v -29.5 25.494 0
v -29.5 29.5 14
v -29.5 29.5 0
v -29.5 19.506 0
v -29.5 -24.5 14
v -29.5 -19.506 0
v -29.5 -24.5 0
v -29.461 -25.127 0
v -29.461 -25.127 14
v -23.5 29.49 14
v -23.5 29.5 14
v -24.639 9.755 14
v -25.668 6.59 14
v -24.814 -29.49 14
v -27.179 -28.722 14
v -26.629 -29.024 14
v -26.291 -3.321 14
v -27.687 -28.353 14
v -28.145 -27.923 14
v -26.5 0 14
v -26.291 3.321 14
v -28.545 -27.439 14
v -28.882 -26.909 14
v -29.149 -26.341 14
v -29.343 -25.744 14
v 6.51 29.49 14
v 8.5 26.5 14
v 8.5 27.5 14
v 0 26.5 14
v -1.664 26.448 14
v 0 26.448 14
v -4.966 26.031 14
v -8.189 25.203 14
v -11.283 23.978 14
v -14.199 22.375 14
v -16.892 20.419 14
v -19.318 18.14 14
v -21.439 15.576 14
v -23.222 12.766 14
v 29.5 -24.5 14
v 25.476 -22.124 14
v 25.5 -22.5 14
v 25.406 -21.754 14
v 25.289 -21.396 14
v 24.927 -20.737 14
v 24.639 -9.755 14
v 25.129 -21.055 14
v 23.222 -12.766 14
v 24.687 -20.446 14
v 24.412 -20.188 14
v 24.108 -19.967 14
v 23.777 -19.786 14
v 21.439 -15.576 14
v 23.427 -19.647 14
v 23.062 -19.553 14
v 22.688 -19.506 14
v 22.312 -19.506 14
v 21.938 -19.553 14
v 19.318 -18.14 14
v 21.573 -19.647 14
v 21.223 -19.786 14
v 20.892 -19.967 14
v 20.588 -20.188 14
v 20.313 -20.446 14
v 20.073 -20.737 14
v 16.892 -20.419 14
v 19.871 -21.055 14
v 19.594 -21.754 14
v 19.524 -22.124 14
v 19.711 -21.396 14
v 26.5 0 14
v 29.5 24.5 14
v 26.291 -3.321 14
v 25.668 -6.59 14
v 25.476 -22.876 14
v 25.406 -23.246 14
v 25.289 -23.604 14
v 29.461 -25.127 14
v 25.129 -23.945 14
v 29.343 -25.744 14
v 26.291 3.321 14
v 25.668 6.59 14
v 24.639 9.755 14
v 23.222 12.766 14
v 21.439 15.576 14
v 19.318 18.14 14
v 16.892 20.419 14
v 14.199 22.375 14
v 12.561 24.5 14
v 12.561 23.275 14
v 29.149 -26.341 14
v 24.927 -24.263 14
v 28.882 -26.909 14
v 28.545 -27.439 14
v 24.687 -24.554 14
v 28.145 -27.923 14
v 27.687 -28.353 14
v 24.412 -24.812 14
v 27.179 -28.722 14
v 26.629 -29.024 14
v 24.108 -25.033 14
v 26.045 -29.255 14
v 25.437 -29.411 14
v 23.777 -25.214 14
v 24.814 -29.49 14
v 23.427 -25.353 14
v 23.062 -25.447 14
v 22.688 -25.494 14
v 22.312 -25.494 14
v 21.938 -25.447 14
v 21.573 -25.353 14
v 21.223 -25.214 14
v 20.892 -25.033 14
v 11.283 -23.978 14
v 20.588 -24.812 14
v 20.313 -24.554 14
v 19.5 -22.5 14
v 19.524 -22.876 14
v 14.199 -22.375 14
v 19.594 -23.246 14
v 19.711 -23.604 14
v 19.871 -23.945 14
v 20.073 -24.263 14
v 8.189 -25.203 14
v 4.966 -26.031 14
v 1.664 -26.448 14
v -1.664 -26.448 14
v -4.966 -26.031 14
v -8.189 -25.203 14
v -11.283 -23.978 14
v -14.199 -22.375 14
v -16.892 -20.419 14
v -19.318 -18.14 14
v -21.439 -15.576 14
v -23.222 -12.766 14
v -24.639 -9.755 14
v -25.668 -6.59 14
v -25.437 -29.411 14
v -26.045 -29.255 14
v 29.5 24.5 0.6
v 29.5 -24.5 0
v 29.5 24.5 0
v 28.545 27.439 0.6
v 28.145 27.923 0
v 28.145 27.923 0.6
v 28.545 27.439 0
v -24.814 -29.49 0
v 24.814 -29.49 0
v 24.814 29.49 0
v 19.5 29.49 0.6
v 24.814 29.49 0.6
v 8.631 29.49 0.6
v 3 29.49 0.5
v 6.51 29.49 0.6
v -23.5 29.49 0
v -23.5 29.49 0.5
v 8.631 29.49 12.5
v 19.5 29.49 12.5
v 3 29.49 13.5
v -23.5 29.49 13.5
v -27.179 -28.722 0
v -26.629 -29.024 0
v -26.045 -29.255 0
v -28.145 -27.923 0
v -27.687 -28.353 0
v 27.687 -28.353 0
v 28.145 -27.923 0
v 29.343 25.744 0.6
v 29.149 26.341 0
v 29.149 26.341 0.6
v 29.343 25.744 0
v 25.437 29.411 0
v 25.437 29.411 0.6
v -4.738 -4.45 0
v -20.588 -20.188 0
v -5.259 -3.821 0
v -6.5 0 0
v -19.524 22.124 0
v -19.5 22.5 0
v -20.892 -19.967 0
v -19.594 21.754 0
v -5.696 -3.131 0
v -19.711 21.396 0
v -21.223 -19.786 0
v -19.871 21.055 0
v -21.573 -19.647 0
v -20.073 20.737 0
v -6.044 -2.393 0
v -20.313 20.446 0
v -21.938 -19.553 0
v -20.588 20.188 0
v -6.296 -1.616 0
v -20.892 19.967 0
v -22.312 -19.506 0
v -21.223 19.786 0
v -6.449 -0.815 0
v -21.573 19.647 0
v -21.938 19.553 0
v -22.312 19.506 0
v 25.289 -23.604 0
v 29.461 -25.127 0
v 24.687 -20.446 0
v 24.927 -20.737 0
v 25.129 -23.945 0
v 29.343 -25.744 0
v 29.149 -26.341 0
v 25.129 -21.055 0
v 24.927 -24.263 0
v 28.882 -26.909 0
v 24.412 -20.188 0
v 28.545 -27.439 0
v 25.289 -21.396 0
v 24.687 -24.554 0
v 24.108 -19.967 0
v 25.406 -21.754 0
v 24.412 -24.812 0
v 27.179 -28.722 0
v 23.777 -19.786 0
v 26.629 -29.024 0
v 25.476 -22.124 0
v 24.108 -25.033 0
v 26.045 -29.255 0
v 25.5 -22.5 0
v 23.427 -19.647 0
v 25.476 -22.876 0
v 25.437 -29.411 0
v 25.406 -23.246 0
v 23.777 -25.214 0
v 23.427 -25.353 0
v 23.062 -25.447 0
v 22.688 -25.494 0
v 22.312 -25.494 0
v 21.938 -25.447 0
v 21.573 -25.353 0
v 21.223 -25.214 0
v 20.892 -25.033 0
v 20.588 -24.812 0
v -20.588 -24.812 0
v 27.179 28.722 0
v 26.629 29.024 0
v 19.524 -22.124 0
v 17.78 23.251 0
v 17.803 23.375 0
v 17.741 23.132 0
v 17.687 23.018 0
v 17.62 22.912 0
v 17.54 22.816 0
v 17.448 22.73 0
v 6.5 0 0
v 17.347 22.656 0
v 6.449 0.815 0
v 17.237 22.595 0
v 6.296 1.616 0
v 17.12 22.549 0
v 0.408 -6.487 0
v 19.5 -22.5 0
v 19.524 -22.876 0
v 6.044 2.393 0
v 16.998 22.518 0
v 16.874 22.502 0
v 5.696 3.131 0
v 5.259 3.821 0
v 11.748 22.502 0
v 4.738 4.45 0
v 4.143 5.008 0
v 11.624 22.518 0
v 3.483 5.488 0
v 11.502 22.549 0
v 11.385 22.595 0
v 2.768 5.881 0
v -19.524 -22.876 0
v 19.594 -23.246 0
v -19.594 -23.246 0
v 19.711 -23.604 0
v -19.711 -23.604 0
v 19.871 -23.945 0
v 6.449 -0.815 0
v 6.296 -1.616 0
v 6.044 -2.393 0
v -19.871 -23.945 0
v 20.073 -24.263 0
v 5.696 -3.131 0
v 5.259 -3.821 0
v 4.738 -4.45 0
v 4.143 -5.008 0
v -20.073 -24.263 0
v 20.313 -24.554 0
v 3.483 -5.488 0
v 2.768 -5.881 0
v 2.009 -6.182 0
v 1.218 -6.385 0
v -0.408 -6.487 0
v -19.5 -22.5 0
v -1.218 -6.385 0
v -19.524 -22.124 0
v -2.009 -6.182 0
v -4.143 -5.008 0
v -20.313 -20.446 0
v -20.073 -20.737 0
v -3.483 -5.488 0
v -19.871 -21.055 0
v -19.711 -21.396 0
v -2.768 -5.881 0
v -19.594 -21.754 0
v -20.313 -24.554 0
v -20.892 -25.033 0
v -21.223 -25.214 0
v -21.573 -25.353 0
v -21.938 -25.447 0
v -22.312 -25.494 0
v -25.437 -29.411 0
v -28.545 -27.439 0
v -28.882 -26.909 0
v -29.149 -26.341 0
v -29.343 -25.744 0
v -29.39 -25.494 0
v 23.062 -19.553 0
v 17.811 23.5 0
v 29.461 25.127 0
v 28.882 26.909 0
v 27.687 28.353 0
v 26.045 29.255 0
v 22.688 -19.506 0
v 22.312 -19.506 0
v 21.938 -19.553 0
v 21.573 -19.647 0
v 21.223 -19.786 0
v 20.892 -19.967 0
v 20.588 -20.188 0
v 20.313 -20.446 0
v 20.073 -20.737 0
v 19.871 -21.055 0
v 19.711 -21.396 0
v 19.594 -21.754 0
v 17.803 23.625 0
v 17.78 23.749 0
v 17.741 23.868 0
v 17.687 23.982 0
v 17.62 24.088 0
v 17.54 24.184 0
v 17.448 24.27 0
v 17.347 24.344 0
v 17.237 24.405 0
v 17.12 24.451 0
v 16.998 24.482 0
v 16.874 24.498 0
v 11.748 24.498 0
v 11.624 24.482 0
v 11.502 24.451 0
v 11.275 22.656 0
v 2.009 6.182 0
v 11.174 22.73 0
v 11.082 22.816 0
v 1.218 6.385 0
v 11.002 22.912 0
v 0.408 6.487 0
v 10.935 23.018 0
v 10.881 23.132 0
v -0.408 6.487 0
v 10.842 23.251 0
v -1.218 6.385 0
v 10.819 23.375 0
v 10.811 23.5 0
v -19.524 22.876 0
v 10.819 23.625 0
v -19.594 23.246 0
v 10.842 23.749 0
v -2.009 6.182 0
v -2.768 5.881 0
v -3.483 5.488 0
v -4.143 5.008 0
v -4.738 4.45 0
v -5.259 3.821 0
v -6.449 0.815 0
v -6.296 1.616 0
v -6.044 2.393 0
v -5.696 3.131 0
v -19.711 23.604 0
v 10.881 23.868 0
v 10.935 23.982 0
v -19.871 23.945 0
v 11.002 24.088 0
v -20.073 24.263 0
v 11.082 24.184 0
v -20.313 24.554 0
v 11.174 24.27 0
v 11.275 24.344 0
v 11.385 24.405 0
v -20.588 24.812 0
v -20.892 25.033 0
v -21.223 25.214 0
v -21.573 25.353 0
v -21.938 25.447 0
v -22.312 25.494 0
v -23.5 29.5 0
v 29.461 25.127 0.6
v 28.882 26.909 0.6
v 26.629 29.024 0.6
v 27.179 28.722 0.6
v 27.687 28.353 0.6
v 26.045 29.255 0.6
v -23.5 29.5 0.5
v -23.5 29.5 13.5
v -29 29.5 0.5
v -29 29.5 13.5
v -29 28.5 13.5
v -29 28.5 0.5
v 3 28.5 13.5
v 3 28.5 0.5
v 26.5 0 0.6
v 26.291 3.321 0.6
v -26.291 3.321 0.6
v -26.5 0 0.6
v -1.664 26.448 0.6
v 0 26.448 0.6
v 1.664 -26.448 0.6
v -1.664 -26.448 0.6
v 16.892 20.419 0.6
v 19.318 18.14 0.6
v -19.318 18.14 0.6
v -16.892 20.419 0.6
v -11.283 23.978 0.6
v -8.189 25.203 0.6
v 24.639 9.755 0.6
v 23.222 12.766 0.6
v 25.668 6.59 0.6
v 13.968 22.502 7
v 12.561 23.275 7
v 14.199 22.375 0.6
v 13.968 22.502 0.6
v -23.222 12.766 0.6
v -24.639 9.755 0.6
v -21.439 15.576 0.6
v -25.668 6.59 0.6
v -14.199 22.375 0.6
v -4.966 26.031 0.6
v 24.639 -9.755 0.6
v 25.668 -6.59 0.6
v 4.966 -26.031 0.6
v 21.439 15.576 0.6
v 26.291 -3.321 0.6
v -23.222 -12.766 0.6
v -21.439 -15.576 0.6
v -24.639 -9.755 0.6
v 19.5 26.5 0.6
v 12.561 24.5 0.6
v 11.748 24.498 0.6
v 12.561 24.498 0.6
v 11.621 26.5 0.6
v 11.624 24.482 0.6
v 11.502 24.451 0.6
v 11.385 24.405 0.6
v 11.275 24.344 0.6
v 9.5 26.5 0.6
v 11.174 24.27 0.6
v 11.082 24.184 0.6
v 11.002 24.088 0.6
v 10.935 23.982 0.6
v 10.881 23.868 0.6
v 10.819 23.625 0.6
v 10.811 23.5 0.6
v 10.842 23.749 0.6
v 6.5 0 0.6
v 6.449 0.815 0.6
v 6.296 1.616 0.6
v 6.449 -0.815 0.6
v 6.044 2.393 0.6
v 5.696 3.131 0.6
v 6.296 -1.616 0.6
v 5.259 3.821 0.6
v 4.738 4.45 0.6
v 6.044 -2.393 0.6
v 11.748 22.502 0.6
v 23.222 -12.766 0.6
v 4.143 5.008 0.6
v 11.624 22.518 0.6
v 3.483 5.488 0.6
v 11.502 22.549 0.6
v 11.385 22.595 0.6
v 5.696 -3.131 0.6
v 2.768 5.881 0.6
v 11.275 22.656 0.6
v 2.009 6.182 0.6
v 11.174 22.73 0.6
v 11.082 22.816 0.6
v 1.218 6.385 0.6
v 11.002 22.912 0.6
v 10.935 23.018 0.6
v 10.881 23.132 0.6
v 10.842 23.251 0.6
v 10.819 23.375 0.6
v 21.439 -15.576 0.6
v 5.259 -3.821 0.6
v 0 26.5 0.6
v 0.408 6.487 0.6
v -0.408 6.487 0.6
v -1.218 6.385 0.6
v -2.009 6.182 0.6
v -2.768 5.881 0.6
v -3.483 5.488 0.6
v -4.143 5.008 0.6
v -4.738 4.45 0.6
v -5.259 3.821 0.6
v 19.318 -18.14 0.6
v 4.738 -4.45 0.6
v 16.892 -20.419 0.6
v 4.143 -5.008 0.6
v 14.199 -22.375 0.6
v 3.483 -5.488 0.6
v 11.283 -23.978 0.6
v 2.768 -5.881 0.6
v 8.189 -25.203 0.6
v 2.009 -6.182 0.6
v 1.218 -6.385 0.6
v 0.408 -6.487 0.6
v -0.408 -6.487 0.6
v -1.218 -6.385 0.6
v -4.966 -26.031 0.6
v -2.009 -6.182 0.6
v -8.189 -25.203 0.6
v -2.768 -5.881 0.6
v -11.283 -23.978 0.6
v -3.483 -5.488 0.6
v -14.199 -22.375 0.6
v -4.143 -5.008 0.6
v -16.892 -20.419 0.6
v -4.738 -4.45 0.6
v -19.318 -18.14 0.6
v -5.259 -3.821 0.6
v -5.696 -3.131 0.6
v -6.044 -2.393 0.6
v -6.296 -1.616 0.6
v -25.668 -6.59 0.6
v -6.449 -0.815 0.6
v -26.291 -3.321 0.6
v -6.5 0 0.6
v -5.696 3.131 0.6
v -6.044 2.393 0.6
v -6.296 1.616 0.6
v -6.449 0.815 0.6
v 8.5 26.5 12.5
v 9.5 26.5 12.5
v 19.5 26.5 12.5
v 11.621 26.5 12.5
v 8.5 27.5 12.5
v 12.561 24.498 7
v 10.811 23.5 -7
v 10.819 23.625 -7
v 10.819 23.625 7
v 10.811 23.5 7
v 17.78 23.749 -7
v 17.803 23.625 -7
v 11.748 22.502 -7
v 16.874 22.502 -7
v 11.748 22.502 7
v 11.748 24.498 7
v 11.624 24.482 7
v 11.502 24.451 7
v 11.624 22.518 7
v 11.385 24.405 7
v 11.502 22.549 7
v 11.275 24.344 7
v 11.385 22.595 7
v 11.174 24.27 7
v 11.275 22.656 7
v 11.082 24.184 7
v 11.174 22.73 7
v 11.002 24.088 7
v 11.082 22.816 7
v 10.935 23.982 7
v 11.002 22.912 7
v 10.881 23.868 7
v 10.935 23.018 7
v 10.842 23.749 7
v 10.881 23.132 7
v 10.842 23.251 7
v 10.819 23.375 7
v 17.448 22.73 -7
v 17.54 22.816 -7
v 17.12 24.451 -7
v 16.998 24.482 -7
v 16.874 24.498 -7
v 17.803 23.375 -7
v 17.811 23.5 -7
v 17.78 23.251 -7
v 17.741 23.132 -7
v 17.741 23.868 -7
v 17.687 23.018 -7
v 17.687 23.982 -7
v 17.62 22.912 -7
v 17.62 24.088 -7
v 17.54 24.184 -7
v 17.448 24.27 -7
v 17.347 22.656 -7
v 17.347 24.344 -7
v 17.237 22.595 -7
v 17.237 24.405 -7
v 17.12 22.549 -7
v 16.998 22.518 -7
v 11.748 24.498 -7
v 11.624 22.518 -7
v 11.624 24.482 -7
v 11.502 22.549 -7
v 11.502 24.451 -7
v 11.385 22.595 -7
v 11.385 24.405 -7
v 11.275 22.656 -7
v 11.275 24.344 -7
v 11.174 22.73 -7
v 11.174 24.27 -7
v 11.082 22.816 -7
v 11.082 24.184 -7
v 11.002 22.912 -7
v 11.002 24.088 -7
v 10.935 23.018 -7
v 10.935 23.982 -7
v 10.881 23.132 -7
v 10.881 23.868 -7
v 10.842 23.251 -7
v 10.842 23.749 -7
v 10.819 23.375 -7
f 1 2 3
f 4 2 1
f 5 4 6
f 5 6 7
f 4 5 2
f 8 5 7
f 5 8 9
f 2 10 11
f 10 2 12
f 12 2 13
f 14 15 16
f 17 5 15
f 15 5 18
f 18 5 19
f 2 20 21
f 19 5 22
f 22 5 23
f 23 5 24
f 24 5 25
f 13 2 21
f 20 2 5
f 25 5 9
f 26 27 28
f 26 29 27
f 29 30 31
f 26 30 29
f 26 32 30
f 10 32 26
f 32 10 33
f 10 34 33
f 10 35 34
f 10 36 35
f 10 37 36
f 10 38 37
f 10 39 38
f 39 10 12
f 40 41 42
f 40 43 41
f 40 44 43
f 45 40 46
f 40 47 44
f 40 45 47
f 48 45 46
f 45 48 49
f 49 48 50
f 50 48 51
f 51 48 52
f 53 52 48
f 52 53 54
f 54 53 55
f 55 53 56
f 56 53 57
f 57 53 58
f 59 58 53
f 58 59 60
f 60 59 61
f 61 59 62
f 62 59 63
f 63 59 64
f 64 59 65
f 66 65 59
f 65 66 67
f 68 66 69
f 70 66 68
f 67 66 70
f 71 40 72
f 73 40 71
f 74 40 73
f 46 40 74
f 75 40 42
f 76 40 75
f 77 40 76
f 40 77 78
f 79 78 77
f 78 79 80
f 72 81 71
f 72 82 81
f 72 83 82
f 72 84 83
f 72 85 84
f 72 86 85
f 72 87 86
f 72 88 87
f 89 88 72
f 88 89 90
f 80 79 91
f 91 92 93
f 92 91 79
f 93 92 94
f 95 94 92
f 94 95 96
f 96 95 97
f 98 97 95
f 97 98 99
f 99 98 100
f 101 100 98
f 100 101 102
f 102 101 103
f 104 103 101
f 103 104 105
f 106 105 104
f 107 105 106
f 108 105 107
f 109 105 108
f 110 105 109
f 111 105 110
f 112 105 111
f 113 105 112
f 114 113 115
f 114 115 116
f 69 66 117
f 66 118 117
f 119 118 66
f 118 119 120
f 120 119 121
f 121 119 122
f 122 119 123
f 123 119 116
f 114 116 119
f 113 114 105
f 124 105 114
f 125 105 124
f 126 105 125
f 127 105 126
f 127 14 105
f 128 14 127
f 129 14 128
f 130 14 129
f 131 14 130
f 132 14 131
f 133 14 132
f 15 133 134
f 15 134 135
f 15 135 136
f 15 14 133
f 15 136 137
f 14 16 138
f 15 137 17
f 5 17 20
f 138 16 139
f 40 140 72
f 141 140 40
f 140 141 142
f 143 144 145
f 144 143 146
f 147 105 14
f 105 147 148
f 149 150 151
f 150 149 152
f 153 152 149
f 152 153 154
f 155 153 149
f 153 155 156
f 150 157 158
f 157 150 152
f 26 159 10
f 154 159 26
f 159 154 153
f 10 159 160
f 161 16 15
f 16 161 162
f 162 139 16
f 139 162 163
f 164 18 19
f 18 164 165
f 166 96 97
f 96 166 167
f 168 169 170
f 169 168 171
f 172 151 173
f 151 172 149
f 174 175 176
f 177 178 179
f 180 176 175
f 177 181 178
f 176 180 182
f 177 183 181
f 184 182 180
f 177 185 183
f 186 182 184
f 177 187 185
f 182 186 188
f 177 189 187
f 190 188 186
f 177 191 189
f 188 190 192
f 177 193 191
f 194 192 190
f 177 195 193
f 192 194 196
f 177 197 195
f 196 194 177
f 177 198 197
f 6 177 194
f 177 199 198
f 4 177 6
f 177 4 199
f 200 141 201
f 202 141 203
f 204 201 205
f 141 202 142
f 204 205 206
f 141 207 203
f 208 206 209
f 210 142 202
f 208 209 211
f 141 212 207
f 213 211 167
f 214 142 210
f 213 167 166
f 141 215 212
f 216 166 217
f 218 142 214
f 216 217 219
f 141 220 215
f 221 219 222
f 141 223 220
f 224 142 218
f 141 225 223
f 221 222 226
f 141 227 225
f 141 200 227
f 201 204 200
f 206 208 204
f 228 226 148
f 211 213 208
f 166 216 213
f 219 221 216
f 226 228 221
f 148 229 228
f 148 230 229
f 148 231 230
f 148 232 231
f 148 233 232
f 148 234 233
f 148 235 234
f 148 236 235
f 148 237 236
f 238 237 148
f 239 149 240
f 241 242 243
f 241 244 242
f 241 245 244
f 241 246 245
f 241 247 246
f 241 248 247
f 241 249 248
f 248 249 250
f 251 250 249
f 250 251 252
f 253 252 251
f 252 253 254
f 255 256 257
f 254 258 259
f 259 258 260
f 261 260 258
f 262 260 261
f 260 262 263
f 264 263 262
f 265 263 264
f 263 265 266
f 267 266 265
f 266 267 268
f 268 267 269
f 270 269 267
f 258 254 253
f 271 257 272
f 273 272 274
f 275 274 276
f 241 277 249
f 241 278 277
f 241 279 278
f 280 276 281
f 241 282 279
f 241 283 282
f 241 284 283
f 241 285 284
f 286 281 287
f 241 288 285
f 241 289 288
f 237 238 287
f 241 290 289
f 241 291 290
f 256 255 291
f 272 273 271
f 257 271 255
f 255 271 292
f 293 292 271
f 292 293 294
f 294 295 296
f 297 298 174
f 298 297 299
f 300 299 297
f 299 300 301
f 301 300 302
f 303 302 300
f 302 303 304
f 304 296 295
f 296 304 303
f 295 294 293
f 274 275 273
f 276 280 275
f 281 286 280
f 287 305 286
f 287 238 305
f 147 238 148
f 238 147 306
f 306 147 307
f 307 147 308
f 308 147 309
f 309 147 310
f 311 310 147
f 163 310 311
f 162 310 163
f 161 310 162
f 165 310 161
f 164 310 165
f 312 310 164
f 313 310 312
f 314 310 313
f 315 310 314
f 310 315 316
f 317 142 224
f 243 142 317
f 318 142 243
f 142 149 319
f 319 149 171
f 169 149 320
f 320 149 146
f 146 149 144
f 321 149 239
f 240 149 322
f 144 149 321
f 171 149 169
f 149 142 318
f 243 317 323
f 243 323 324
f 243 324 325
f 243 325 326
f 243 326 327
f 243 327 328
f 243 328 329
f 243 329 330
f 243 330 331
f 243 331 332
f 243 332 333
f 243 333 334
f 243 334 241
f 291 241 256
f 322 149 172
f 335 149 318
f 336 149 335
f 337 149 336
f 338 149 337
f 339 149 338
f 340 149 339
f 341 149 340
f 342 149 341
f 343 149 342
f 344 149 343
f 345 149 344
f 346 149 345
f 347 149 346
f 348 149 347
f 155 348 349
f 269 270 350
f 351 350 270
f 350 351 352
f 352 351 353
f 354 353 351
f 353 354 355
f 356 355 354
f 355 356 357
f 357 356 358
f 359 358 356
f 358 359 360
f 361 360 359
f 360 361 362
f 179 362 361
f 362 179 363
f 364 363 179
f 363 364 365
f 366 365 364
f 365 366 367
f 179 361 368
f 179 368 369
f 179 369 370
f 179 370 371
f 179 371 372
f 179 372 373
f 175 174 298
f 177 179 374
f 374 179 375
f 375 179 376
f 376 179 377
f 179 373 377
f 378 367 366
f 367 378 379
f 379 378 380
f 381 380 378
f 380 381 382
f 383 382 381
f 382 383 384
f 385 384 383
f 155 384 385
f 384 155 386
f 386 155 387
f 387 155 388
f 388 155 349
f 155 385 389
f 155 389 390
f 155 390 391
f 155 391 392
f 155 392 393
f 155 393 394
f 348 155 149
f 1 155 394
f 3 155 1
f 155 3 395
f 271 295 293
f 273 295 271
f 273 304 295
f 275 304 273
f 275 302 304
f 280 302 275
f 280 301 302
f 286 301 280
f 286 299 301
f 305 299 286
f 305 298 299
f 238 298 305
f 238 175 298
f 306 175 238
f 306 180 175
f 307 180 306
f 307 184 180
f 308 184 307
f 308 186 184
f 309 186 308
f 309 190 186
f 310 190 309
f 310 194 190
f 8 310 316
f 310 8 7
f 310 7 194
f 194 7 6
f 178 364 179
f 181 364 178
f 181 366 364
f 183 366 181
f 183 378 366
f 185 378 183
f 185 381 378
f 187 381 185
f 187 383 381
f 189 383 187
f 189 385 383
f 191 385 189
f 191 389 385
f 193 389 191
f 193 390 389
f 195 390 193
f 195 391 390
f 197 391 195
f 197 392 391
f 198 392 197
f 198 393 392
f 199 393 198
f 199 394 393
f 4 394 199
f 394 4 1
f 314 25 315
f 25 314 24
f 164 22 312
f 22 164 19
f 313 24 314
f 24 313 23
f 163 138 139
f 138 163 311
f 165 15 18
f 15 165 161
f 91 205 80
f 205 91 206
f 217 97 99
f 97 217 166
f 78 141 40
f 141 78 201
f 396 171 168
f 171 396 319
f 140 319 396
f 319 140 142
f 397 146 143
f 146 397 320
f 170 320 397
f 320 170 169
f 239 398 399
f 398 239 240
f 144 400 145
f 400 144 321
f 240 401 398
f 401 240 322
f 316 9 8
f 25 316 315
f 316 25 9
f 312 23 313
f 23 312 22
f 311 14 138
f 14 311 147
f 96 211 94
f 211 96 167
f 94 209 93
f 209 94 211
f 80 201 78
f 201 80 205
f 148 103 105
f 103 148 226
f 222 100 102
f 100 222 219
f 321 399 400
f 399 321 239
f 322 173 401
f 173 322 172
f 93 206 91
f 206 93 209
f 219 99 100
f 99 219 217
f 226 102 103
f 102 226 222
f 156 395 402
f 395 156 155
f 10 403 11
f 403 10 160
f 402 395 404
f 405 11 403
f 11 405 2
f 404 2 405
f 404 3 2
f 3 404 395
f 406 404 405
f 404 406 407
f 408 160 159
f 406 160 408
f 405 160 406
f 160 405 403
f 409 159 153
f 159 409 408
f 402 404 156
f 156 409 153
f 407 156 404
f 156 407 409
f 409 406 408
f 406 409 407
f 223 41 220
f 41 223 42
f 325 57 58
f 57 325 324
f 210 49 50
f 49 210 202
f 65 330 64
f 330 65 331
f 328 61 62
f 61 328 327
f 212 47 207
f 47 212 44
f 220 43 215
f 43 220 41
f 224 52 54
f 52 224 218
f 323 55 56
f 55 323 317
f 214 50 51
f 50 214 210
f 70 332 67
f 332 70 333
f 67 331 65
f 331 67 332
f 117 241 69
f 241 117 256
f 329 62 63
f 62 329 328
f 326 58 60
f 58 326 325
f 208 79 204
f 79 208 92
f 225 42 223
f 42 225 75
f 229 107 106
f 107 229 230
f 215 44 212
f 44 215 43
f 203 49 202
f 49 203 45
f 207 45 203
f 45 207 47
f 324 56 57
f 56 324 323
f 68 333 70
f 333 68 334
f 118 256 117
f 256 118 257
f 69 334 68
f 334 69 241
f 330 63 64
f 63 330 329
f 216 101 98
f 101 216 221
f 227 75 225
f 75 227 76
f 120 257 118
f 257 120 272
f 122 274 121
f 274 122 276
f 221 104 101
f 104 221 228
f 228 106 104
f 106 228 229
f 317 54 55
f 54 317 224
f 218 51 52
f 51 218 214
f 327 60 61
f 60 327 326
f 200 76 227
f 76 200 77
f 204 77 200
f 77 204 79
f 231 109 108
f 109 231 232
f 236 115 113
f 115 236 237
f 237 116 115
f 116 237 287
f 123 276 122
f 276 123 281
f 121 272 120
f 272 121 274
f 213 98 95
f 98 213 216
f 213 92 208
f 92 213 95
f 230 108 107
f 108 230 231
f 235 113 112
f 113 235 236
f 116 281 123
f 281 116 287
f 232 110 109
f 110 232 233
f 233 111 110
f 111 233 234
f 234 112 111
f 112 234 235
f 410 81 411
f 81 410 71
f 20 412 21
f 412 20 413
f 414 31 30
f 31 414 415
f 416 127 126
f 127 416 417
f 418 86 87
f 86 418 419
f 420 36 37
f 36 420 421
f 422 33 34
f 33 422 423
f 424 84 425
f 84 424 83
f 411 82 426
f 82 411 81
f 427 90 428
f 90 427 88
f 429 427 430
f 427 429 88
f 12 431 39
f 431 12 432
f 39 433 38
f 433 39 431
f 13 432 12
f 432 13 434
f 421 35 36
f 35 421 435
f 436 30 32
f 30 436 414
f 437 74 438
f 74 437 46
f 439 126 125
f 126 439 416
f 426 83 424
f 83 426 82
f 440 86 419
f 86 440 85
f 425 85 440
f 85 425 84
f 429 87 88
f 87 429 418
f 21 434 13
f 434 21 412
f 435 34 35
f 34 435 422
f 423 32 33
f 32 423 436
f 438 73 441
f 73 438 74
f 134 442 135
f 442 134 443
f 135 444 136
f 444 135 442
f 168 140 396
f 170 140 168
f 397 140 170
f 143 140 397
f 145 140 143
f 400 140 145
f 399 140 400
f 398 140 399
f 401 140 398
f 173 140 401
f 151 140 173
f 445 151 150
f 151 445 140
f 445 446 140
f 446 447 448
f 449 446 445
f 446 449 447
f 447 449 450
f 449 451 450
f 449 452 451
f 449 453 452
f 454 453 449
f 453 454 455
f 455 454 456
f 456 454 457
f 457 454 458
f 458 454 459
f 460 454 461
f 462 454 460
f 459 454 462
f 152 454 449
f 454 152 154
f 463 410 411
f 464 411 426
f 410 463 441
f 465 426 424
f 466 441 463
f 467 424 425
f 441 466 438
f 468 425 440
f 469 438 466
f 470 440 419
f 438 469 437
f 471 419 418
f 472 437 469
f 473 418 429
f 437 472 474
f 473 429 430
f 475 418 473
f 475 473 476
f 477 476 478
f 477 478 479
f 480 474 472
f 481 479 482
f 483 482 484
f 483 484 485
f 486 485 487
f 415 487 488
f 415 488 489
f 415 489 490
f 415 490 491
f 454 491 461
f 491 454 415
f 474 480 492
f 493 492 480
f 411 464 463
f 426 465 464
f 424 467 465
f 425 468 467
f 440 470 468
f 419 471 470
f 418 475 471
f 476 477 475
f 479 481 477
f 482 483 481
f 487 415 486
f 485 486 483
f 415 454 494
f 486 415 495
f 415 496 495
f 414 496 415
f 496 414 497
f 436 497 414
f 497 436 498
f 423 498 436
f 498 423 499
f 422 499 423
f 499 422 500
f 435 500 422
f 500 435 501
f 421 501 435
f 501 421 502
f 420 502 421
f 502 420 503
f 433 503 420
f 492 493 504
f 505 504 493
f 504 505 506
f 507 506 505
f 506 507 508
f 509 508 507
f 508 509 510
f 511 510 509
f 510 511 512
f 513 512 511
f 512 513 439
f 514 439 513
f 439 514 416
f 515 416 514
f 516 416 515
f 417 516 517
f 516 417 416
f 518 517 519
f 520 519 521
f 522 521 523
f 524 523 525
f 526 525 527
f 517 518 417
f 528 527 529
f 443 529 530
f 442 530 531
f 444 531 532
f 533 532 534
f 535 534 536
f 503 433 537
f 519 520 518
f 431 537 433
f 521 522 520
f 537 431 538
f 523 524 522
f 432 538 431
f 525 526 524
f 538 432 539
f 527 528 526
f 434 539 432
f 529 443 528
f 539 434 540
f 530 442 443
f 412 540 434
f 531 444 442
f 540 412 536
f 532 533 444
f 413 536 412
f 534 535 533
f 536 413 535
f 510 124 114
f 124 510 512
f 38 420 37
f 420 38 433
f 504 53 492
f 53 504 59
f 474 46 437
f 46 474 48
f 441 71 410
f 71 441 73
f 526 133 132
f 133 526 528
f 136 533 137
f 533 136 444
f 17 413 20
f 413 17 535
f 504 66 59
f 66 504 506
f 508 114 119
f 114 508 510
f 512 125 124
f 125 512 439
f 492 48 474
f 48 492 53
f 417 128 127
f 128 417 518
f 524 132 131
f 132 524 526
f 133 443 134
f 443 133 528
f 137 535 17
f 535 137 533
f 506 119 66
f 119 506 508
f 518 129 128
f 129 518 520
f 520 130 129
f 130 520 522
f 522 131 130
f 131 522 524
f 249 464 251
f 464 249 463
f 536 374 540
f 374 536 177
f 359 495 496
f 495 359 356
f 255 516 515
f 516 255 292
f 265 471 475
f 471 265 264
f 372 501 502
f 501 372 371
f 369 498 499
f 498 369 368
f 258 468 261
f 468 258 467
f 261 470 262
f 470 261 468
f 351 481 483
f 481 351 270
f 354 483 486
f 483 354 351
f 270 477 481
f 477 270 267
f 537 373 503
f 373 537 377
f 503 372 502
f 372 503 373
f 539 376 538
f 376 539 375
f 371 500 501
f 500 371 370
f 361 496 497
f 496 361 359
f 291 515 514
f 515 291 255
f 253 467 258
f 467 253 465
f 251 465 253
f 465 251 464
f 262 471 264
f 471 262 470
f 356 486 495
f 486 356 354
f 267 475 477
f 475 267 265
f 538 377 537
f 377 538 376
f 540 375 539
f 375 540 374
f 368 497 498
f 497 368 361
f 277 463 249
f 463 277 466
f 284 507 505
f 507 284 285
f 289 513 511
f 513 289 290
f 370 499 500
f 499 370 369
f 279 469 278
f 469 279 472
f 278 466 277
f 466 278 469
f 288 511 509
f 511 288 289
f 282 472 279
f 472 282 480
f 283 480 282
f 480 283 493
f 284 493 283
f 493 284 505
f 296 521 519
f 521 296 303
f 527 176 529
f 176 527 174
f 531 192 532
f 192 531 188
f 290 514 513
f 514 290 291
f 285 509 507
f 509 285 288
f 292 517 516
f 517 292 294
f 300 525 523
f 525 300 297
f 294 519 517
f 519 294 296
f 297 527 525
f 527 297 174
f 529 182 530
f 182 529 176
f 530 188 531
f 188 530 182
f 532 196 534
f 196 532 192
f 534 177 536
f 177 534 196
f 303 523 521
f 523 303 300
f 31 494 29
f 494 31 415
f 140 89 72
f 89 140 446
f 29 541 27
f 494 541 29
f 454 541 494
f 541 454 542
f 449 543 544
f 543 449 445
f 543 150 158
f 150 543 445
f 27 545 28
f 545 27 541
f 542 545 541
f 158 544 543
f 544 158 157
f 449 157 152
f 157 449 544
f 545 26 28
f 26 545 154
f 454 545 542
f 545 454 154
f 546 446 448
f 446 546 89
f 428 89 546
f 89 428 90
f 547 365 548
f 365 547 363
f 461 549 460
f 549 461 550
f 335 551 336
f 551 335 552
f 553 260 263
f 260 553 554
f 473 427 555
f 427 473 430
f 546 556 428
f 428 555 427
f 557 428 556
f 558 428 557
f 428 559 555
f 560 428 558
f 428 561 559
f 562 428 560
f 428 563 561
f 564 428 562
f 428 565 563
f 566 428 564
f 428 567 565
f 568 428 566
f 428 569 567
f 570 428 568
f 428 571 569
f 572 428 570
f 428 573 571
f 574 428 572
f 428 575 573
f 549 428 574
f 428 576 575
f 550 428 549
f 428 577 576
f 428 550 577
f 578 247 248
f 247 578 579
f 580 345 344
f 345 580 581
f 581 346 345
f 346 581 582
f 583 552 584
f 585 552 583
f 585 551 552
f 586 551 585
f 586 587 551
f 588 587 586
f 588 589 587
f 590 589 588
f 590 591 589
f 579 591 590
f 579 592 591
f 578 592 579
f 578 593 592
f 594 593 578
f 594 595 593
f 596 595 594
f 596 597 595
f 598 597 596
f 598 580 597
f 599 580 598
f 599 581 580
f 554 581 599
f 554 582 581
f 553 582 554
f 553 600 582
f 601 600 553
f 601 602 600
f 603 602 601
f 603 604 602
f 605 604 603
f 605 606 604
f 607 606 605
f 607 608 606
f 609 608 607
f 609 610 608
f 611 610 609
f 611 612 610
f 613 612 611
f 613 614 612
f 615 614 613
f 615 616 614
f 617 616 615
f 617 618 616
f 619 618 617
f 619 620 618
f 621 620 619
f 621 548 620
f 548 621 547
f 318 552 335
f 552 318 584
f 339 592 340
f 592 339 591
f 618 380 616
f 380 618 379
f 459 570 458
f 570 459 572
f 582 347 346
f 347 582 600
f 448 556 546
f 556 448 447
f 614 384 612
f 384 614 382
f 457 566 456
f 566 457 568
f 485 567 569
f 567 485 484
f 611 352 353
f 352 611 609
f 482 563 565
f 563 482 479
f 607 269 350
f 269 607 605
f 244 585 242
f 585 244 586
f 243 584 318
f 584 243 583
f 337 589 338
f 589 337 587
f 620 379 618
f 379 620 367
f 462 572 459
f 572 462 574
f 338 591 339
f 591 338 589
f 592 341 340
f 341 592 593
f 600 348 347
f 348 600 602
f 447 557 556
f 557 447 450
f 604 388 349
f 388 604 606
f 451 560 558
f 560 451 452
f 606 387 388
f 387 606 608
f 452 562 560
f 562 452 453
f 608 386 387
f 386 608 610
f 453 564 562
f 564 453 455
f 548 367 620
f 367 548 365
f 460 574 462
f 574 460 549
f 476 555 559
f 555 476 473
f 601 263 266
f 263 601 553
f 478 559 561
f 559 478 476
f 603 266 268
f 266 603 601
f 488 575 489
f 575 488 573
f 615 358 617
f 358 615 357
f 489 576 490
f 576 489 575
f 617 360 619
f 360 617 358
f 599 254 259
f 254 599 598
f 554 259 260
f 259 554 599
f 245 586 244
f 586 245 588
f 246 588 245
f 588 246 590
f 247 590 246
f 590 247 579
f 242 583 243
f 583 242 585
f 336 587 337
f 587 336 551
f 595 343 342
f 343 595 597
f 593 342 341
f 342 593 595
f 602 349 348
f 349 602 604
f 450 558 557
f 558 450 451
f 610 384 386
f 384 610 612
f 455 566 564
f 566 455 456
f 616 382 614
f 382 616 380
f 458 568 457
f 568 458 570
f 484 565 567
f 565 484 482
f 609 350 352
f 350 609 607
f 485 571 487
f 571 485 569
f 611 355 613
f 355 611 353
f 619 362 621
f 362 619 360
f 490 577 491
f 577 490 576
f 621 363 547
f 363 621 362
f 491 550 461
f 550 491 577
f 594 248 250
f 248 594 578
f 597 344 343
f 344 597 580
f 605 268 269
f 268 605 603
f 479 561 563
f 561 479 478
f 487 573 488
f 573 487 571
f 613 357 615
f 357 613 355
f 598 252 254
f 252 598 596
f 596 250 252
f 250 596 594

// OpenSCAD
$fn = 50;


union() {
	difference() {
		union() {
			hull() {
				translate(v = [-24.5000000000, 24.5000000000, 0]) {
					cylinder(h = 14, r = 5);
				}
				translate(v = [24.5000000000, 24.5000000000, 0]) {
					cylinder(h = 14, r = 5);
				}
				translate(v = [-24.5000000000, -24.5000000000, 0]) {
					cylinder(h = 14, r = 5);
				}
				translate(v = [24.5000000000, -24.5000000000, 0]) {
					cylinder(h = 14, r = 5);
				}
			}
			translate(v = [-29.5000000000, 23.5000000000, 0]) {
				cube(size = [6, 6, 14]);
			}
		}
		union() {
			translate(v = [-30.0000000000, -22.5000000000, -250.0000000000]) {
				rotate(a = [0, 0, 0]) {
					difference() {
						union() {
							hull() {
								translate(v = [7.5000000000, 0, 0]) {
									cylinder(h = 250, r = 3.0000000000, r1 = 3.0000000000, r2 = 3.0000000000);
								}
								translate(v = [-7.5000000000, 0, 0]) {
									cylinder(h = 250, r = 3.0000000000, r1 = 3.0000000000, r2 = 3.0000000000);
								}
							}
						}
						union();
					}
				}
			}
			translate(v = [-30.0000000000, 22.5000000000, -250.0000000000]) {
				rotate(a = [0, 0, 0]) {
					difference() {
						union() {
							hull() {
								translate(v = [7.5000000000, 0, 0]) {
									cylinder(h = 250, r = 3.0000000000, r1 = 3.0000000000, r2 = 3.0000000000);
								}
								translate(v = [-7.5000000000, 0, 0]) {
									cylinder(h = 250, r = 3.0000000000, r1 = 3.0000000000, r2 = 3.0000000000);
								}
							}
						}
						union();
					}
				}
			}
			translate(v = [-29.0000000000, 28.5000000000, 0.5000000000]) {
				cube(size = [32, 1, 13.0000000000]);
			}
			translate(v = [22.5000000000, -22.5000000000, 0]) {
				cylinder(h = 100, r = 3.0000000000);
			}
			translate(v = [0, 0, 0.6000000000]) {
				cylinder(h = 16.4000000000, r = 26.5000000000);
			}
			translate(v = [0, 0, -7.0000000000]) {
				cylinder(h = 14, r = 6.5000000000);
			}
			translate(v = [0.0000000000, 24.5000000000, 0.6000000000]) {
				cube(size = [29.5000000000, 2, 16.4000000000]);
			}
			translate(v = [19.5000000000, 24.5000000000, 0.6000000000]) {
				cube(size = [10, 5, 16.4000000000]);
			}
			translate(v = [8.5000000000, 24.5000000000, 12.5000000000]) {
				cube(size = [21, 5, 1.5000000000]);
			}
			translate(v = [5.7500000000, 30.2500000000, 0.6000000000]) {
				rotate(a = [0, 0, -45]) {
					cube(size = [7.5000000000, 1.5000000000, 16.4000000000]);
				}
			}
			translate(v = [5.0610000000, 22.5000000000, 0.6000000000]) {
				cube(size = [7.5000000000, 2, 13.4000000000]);
			}
		}
	}
	union() {
		translate(v = [14.3110000000, 23.5000000000, -7.0000000000]) {
			rotate(a = [0, 0, 0]) {
				difference() {
					union() {
						#hull() {
							#translate(v = [2.5000000000, 0, 0]) {
								cylinder(h = 14, r = 1.0000000000, r1 = 1.0000000000, r2 = 1.0000000000);
							}
							#translate(v = [-2.5000000000, 0, 0]) {
								cylinder(h = 14, r = 1.0000000000, r1 = 1.0000000000, r2 = 1.0000000000);
							}
						}
					}
					union();
				}
			}
		}
	}
}
